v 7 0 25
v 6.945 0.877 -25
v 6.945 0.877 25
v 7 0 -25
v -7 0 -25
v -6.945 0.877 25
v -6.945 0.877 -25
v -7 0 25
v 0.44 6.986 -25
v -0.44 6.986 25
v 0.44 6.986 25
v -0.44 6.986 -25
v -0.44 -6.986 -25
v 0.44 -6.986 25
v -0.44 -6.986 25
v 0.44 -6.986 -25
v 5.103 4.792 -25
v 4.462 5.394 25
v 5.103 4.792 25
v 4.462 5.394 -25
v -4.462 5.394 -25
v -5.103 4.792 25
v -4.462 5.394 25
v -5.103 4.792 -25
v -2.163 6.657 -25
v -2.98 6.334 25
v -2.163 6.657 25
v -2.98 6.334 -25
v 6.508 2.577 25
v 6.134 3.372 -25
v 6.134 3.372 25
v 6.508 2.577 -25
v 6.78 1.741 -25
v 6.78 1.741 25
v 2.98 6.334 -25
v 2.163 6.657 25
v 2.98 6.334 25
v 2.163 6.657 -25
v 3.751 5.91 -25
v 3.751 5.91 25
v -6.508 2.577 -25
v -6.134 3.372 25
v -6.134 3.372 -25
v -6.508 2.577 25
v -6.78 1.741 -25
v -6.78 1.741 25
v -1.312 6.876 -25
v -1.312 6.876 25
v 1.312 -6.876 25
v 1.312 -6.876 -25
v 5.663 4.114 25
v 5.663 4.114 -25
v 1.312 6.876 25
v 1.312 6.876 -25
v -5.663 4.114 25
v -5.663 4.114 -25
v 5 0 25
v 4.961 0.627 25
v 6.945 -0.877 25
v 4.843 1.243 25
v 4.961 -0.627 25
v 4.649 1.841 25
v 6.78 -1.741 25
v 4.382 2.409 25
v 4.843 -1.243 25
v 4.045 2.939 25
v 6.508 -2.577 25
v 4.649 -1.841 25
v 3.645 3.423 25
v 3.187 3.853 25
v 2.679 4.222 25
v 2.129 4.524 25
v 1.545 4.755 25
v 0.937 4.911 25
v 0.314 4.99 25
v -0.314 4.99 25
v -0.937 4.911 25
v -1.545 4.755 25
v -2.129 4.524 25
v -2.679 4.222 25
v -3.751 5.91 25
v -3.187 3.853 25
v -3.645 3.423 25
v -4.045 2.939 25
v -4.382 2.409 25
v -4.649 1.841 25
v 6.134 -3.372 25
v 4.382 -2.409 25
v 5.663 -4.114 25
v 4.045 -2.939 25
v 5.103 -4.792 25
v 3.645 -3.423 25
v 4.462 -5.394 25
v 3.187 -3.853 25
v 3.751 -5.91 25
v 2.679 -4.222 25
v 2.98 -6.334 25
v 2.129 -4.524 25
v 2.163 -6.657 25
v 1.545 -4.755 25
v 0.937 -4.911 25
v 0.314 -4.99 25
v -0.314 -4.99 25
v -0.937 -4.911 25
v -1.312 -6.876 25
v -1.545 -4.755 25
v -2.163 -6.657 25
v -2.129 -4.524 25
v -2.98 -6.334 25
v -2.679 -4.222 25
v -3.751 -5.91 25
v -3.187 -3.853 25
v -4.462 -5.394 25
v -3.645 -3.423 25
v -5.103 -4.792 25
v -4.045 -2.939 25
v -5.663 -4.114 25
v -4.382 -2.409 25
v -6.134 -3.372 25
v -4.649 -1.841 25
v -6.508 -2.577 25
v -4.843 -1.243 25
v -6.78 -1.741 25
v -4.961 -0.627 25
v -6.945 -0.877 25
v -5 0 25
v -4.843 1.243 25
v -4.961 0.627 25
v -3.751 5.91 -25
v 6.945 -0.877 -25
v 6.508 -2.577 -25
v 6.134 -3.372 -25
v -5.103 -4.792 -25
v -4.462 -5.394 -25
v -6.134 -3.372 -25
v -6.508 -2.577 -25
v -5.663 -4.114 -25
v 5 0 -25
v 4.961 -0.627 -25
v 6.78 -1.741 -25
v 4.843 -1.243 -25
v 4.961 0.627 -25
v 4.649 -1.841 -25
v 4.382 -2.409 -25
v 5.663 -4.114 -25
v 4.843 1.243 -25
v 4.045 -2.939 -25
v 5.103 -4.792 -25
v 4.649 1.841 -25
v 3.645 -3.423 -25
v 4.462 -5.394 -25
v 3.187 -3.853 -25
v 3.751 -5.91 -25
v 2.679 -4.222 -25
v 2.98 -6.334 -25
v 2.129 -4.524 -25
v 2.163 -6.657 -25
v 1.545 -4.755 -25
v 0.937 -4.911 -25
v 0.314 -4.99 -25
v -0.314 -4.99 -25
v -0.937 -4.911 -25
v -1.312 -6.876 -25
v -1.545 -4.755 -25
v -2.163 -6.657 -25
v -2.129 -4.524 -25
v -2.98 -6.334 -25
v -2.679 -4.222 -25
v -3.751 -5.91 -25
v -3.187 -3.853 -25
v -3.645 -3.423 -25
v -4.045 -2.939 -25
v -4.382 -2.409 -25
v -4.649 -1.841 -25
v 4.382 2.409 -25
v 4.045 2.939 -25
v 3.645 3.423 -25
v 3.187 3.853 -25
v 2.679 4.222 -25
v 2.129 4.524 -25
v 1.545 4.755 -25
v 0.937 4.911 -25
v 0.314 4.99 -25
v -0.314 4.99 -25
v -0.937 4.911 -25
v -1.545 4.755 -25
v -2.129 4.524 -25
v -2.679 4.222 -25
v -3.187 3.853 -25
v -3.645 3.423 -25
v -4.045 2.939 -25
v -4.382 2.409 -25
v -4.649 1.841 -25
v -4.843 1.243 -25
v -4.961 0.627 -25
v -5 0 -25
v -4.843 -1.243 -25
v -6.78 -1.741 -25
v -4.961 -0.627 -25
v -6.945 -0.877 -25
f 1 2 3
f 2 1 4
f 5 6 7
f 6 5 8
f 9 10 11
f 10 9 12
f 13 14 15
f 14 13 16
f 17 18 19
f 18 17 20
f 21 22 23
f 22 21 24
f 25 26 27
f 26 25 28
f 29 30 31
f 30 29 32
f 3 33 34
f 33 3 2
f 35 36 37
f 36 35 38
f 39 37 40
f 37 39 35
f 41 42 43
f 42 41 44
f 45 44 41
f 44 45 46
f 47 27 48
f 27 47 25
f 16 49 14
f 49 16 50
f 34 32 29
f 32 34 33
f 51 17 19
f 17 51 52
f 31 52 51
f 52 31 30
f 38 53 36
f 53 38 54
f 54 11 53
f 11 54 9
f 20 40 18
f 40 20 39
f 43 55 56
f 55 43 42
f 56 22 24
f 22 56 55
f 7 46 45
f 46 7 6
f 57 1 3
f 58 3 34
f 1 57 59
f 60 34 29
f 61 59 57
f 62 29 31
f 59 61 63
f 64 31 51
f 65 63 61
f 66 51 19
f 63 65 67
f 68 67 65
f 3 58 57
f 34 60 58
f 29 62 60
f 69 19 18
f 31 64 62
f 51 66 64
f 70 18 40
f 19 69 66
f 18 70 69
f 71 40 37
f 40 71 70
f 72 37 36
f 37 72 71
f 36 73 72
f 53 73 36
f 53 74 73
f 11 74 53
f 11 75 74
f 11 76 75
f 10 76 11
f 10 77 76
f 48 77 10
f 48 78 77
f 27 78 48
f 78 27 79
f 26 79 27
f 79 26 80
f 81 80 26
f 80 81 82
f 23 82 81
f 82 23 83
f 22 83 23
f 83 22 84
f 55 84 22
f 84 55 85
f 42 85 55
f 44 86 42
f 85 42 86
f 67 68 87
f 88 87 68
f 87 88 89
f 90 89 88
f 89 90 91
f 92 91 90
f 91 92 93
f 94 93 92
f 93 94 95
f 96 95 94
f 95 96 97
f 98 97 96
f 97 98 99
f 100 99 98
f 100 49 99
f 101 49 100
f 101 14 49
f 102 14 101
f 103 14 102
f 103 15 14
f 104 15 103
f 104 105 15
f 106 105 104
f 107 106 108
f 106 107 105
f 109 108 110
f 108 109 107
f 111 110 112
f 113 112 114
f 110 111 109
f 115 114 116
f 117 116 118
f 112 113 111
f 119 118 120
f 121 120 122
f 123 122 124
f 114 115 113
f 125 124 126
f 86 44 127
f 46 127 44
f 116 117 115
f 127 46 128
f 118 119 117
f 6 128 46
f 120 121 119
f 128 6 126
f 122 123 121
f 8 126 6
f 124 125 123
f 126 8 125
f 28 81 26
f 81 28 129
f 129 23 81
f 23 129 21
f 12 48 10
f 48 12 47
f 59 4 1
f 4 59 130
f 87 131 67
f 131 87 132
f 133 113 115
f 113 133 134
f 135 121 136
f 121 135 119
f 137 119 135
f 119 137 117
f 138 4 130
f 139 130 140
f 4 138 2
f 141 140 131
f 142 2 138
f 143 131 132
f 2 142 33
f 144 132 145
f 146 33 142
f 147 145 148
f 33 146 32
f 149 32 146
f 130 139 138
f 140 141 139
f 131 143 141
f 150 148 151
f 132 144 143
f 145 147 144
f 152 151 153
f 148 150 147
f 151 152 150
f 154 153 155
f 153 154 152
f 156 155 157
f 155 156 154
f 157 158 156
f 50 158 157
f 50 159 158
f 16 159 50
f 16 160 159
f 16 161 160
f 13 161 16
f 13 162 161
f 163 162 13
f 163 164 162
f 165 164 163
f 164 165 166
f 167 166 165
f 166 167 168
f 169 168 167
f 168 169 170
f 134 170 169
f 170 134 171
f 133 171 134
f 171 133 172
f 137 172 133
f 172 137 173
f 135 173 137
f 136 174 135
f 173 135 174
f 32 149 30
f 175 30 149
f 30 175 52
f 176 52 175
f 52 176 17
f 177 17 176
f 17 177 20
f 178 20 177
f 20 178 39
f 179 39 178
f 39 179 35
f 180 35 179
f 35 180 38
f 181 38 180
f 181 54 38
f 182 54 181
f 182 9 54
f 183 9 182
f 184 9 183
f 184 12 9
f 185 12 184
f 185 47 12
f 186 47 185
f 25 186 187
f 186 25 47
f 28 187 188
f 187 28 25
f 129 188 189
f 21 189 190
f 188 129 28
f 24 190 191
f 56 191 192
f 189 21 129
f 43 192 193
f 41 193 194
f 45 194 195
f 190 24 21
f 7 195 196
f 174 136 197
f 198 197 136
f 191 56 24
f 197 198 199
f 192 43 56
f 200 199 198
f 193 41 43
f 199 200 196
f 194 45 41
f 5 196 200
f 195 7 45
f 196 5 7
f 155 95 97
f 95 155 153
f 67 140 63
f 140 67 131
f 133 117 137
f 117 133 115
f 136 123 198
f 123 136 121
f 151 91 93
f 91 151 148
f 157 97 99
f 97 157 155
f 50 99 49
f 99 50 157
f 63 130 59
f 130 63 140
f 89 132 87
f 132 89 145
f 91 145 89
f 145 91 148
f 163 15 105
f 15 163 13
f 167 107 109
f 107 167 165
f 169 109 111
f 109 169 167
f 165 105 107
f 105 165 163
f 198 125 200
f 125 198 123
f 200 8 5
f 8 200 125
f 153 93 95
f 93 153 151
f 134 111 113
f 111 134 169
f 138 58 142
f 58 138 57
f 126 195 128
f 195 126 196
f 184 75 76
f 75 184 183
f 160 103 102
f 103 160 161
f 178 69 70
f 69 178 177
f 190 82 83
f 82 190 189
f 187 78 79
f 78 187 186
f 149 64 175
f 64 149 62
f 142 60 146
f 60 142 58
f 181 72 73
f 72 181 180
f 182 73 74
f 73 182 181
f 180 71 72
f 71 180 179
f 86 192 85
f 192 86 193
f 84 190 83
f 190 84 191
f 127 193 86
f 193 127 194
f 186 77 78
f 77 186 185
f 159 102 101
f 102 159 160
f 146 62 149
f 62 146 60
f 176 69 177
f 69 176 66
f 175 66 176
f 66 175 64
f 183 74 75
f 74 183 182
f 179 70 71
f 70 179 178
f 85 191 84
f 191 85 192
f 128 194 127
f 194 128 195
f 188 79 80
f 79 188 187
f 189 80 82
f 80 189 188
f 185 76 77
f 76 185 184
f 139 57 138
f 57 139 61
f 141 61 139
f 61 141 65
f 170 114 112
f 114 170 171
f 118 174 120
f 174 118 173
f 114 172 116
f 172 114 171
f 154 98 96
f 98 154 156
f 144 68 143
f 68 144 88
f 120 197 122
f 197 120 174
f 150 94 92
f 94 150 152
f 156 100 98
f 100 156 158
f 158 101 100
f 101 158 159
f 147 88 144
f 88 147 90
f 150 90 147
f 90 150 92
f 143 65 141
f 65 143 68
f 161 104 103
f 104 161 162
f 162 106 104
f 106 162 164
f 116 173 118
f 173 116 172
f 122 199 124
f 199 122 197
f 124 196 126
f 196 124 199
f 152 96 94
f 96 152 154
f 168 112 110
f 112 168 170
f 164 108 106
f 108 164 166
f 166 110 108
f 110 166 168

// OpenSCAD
$fn = 50;


difference() {
	union() {
		translate(v = [0, 0, -25.0000000000]) {
			cylinder(h = 50, r = 7.0000000000);
		}
	}
	union() {
		translate(v = [0, 0, -100.0000000000]) {
			cylinder(h = 200, r = 5.0000000000);
		}
	}
}
